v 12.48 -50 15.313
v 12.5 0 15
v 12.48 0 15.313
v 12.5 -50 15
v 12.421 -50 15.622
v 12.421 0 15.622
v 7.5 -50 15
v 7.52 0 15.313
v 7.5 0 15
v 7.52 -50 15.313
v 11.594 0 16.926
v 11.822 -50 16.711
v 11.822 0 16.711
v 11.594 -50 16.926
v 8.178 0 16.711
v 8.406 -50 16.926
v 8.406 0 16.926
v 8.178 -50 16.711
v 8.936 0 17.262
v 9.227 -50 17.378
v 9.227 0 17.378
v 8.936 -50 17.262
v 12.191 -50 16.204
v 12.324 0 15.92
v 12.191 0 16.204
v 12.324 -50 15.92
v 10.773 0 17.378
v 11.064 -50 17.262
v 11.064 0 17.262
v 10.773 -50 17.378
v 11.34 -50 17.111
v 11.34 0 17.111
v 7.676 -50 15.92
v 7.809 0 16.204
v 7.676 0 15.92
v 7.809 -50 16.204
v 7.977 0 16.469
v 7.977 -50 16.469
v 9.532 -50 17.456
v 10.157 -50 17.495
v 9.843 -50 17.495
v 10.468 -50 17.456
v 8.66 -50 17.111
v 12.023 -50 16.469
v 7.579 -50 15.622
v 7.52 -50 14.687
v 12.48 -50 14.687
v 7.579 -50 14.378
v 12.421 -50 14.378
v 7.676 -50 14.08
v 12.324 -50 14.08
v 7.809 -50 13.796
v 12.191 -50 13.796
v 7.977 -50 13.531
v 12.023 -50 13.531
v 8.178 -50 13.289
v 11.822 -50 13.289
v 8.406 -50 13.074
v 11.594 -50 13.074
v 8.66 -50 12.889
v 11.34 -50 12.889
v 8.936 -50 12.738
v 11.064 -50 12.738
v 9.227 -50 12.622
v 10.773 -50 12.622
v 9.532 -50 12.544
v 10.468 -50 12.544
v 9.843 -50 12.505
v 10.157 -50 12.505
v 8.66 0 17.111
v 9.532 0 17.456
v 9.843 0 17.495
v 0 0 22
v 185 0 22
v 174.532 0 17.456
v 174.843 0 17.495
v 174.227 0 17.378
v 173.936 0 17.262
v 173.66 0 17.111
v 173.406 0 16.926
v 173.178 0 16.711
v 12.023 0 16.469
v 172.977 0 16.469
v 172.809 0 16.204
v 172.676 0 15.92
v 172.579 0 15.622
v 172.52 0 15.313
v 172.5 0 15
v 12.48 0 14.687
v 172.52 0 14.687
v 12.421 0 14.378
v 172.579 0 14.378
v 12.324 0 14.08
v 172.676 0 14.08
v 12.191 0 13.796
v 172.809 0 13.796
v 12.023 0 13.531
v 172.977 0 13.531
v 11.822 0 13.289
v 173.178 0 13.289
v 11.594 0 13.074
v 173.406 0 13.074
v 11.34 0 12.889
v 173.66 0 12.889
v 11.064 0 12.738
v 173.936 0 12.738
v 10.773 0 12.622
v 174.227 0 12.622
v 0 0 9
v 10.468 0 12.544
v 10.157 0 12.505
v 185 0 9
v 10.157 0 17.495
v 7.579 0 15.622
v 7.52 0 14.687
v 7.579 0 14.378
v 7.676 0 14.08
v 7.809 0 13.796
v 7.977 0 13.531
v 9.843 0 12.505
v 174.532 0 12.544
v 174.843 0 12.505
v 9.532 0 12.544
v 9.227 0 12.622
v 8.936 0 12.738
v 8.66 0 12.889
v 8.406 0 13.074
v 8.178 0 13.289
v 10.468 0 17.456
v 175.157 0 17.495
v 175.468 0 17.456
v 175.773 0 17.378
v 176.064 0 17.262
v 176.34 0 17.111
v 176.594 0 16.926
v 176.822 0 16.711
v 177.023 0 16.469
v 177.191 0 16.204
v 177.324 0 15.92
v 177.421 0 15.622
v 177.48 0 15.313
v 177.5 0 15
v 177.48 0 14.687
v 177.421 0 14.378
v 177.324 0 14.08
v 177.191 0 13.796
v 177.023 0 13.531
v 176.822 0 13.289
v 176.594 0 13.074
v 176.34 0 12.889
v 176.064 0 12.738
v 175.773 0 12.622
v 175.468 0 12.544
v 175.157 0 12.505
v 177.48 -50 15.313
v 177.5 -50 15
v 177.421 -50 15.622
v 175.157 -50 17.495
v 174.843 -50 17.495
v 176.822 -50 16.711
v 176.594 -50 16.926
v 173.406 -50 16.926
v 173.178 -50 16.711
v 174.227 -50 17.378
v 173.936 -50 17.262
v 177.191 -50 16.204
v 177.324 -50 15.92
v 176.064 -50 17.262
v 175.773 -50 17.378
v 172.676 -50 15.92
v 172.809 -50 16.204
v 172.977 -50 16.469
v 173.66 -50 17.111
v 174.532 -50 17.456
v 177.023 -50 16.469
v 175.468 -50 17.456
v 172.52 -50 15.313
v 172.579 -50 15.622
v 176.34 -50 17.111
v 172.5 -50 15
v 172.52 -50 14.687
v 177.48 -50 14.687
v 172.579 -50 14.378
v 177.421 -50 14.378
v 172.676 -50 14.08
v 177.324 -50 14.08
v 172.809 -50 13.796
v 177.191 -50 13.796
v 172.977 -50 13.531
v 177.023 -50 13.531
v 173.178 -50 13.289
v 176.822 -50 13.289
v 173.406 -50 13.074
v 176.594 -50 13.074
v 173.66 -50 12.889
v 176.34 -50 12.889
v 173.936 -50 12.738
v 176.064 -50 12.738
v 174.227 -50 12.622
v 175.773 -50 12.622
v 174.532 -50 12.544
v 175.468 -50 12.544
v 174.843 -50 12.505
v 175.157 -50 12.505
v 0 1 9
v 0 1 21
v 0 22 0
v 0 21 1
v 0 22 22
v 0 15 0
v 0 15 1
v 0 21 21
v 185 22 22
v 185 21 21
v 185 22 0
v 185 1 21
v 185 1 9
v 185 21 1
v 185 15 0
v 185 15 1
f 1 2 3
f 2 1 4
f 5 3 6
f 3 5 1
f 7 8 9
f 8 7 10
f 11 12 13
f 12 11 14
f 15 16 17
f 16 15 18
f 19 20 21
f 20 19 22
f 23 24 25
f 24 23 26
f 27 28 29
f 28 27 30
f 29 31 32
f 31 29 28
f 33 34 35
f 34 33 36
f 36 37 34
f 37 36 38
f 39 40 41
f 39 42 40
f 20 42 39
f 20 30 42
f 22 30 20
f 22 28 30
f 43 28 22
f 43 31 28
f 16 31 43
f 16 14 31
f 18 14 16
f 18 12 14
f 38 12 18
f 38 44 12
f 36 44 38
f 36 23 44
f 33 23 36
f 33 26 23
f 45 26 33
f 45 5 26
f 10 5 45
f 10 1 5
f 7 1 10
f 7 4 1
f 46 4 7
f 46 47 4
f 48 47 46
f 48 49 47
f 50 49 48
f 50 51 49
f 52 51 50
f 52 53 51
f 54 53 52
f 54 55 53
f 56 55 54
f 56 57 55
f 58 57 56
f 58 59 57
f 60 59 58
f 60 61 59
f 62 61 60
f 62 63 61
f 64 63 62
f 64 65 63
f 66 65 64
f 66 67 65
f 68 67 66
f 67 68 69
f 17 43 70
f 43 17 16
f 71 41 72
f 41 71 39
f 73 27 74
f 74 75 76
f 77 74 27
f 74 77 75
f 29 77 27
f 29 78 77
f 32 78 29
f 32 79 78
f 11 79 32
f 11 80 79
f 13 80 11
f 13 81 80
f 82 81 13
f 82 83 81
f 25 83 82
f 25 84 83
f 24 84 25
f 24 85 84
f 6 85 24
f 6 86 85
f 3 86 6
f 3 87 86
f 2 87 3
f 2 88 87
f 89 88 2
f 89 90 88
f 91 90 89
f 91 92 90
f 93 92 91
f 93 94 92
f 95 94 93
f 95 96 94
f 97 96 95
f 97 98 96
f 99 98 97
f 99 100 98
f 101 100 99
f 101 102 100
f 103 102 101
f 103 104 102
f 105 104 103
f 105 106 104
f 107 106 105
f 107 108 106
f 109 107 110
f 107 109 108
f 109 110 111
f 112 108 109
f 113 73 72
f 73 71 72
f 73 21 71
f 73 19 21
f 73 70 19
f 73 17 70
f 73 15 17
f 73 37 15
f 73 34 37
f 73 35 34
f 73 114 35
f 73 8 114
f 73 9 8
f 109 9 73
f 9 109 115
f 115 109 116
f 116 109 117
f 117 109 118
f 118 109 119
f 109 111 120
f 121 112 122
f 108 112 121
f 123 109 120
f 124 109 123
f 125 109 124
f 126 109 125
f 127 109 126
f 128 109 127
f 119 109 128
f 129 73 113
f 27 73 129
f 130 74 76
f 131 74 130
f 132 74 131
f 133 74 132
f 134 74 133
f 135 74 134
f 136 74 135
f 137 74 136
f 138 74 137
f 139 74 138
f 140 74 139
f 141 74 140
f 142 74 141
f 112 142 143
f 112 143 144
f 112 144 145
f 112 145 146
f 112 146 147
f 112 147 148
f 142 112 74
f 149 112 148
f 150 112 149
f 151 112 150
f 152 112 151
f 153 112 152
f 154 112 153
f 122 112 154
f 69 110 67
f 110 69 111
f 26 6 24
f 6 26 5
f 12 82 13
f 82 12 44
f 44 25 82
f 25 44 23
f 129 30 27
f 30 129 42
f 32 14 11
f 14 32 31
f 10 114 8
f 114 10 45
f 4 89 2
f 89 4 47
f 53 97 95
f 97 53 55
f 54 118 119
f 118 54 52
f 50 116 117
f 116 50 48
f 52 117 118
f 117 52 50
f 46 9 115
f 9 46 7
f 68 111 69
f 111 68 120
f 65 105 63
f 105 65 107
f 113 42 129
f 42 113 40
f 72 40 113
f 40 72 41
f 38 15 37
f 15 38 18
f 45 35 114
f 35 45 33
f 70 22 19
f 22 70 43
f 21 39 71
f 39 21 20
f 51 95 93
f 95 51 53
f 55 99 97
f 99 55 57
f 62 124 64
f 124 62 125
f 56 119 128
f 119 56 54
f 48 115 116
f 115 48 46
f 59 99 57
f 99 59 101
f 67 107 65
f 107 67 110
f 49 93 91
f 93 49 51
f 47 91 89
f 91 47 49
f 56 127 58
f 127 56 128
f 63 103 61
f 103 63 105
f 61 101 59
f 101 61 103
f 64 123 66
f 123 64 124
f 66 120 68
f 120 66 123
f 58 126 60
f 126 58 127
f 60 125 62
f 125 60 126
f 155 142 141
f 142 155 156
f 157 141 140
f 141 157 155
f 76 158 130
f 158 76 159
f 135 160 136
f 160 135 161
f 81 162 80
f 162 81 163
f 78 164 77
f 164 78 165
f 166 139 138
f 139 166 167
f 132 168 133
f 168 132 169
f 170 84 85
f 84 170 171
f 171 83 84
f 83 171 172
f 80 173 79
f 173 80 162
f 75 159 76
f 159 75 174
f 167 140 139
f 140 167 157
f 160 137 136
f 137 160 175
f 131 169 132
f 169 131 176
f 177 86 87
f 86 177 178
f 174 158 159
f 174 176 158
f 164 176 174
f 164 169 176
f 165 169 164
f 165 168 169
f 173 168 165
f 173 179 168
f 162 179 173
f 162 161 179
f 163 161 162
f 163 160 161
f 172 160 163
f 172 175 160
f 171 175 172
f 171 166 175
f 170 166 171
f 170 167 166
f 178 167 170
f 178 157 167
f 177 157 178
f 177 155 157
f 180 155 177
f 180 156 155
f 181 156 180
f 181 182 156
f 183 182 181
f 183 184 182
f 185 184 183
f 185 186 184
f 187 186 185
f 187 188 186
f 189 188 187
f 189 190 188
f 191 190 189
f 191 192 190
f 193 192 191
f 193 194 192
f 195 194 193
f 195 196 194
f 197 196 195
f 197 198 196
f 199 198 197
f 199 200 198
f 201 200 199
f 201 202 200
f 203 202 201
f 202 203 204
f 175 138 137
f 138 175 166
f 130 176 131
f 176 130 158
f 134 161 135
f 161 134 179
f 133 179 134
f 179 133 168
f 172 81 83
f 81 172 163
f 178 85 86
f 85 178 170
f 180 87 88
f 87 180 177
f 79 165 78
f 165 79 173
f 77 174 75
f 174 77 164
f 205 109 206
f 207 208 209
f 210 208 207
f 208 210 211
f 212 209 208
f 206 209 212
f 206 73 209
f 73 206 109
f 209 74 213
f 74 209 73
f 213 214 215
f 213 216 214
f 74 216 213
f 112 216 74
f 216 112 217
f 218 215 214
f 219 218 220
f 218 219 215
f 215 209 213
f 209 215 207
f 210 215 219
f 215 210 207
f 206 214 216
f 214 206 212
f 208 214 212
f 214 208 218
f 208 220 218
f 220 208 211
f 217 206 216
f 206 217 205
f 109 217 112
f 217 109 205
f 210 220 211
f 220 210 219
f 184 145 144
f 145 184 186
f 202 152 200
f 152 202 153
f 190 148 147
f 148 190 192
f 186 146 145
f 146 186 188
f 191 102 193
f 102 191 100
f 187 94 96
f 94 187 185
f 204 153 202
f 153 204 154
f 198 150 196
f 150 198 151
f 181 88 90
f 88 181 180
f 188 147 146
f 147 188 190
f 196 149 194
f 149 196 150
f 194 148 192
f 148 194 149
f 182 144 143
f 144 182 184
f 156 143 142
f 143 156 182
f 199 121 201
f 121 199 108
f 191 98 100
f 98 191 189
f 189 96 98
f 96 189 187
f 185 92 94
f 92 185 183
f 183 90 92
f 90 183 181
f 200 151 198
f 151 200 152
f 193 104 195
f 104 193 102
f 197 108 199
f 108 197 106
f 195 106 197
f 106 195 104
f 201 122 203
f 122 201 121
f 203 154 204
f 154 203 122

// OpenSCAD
union() {
    $fn = 50;
    length = 165;
    space = 10;
    diameter = 5;
    translate([space,0,15]) {
        pin(50, diameter);
        translate([length,0,0]) {
            pin(50, diameter);
            //translate([-25,0,0]) {
            //    pin(20, diameter);
            //}
        }
        //translate([25,0,0]) {
        //    pin(20, diameter);
        //}
    }
    translate([space + length,0,15]) {
        pin(50, diameter);
    }
    holder(length, space);
}


module holder(length = 75, space = 5) {
    length = length + 2*space;
    width = 20;
    buffer = 2;
    difference() {
        cube([length, width + buffer, width + buffer]);
        translate([0,1,1]) {
            cube([length, width, width]);
        }
        translate([0,0,-1]) {
            cube([length,15,10]);
        }
    }
}

module pin(height = 50, diameter = 5) {
    rotate([90,0,0]) {
        cylinder(h = height, d = diameter, center = false);
    }
}
